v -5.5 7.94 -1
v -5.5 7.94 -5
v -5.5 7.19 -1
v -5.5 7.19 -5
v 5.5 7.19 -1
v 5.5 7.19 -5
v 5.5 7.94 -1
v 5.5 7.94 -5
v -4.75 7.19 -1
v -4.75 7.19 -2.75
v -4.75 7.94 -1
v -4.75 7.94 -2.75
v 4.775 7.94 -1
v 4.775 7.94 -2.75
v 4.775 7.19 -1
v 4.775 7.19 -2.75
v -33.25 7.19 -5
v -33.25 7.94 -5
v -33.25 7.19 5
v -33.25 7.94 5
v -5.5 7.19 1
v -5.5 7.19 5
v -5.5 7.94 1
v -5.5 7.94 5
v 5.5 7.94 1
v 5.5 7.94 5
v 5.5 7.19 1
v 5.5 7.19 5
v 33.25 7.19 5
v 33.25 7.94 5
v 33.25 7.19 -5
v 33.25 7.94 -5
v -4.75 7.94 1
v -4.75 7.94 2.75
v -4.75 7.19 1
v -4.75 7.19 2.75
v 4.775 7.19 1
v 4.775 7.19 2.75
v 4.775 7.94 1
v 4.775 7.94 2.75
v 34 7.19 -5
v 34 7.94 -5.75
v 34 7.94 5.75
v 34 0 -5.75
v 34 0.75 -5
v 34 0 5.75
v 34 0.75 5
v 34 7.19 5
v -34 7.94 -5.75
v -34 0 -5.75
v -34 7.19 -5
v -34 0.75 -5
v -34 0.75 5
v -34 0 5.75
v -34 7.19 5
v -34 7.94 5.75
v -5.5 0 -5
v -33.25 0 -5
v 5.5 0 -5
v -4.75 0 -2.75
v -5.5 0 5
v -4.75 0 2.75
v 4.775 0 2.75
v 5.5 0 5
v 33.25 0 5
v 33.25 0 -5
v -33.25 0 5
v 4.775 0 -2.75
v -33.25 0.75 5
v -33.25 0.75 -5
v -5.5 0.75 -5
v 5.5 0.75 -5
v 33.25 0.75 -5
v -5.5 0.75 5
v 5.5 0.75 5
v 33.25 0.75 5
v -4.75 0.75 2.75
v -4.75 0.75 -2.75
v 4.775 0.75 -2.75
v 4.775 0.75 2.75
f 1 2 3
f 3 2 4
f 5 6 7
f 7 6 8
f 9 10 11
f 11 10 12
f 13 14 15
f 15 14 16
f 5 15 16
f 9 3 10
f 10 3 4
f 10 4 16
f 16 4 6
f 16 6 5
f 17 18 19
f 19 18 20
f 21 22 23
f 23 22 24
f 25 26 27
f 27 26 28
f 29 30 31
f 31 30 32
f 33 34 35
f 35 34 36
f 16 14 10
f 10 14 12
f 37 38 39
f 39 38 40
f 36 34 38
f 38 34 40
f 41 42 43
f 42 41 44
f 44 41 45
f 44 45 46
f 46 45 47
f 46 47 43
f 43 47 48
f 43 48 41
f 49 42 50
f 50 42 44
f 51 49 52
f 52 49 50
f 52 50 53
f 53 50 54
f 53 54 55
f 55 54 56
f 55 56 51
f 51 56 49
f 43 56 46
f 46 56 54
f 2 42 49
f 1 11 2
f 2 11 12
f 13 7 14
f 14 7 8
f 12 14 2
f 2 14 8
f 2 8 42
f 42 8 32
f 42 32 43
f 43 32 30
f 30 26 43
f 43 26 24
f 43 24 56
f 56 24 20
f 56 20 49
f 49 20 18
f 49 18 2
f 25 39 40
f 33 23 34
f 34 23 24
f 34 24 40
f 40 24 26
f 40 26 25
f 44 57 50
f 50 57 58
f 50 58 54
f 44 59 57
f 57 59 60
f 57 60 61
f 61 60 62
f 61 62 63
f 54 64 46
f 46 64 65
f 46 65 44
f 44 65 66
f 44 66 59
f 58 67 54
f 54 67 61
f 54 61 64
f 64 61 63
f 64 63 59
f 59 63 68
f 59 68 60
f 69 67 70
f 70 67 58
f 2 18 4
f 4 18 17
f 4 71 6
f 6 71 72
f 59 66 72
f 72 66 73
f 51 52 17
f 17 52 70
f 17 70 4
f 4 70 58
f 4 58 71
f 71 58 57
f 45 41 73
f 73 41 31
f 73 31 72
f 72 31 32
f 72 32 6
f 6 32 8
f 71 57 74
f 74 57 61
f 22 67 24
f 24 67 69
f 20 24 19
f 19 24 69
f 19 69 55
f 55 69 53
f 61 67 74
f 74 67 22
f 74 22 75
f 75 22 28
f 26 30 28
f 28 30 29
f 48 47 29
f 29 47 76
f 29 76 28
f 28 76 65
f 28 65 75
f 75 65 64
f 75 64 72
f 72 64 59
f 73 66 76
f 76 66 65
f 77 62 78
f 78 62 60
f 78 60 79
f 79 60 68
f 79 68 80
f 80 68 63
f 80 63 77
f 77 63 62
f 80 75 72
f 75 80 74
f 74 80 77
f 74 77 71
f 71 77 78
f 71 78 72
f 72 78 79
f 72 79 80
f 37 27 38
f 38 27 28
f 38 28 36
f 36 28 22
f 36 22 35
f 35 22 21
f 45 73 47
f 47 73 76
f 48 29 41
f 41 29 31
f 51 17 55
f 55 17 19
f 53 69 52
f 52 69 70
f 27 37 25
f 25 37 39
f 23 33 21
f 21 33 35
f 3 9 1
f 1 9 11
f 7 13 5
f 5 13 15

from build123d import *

# Parameters (mm, degrees)
SKETCH1_W           = 68
SKETCH1_H           = 11.5
BOSS_EXTRUDE1_DEPTH = 7.94
SKETCH2_W           = 27.75
SKETCH2_H           = 10
SKETCH2_W_2         = 9.525
SKETCH2_H_2         = 5.5
CUT_EXTRUDE1_DEPTH  = 36.385111276
SKETCH3_W           = 10
SKETCH3_H           = 6.44
CUT_EXTRUDE2_DEPTH  = 69.703028318
SKETCH4_W           = 11
SKETCH4_H           = 2
CUT_EXTRUDE3_DEPTH  = 2.5


with BuildPart() as part:
    # Sketch1 → Boss-Extrude1 (new body)
    with BuildSketch(Plane(origin=(0, 0, 0), x_dir=(1, 0, 0), z_dir=(0, 1, 0))):
        Rectangle(SKETCH1_W, SKETCH1_H)
    extrude(amount=BOSS_EXTRUDE1_DEPTH)

    # Sketch2 → Cut-Extrude1 (cut, through all)
    with BuildSketch(Plane(origin=(0, 7.94, 0), x_dir=(1, 0, 0), z_dir=(0, 1, 0))):
        with Locations((-19.375, 0)):
            Rectangle(SKETCH2_W, SKETCH2_H)
        with Locations((19.375, 0)):
            Rectangle(SKETCH2_W, SKETCH2_H)
        with Locations((0.0125, 0)):
            Rectangle(SKETCH2_W_2, SKETCH2_H_2)
    extrude(amount=-CUT_EXTRUDE1_DEPTH, mode=Mode.SUBTRACT)

    # Sketch3 → Cut-Extrude2 (cut, through all)
    with BuildSketch(Plane.ZY.offset(34)):
        with Locations((0, 3.97)):
            Rectangle(SKETCH3_W, SKETCH3_H)
    extrude(amount=-CUT_EXTRUDE2_DEPTH, mode=Mode.SUBTRACT)

    # Sketch4 → Cut-Extrude3 (cut)
    with BuildSketch(Plane(origin=(0, 7.94, 0), x_dir=(1, 0, 0), z_dir=(0, 1, 0))):
        Rectangle(SKETCH4_W, SKETCH4_H)
    extrude(amount=-CUT_EXTRUDE3_DEPTH, mode=Mode.SUBTRACT)


solid = part.part
